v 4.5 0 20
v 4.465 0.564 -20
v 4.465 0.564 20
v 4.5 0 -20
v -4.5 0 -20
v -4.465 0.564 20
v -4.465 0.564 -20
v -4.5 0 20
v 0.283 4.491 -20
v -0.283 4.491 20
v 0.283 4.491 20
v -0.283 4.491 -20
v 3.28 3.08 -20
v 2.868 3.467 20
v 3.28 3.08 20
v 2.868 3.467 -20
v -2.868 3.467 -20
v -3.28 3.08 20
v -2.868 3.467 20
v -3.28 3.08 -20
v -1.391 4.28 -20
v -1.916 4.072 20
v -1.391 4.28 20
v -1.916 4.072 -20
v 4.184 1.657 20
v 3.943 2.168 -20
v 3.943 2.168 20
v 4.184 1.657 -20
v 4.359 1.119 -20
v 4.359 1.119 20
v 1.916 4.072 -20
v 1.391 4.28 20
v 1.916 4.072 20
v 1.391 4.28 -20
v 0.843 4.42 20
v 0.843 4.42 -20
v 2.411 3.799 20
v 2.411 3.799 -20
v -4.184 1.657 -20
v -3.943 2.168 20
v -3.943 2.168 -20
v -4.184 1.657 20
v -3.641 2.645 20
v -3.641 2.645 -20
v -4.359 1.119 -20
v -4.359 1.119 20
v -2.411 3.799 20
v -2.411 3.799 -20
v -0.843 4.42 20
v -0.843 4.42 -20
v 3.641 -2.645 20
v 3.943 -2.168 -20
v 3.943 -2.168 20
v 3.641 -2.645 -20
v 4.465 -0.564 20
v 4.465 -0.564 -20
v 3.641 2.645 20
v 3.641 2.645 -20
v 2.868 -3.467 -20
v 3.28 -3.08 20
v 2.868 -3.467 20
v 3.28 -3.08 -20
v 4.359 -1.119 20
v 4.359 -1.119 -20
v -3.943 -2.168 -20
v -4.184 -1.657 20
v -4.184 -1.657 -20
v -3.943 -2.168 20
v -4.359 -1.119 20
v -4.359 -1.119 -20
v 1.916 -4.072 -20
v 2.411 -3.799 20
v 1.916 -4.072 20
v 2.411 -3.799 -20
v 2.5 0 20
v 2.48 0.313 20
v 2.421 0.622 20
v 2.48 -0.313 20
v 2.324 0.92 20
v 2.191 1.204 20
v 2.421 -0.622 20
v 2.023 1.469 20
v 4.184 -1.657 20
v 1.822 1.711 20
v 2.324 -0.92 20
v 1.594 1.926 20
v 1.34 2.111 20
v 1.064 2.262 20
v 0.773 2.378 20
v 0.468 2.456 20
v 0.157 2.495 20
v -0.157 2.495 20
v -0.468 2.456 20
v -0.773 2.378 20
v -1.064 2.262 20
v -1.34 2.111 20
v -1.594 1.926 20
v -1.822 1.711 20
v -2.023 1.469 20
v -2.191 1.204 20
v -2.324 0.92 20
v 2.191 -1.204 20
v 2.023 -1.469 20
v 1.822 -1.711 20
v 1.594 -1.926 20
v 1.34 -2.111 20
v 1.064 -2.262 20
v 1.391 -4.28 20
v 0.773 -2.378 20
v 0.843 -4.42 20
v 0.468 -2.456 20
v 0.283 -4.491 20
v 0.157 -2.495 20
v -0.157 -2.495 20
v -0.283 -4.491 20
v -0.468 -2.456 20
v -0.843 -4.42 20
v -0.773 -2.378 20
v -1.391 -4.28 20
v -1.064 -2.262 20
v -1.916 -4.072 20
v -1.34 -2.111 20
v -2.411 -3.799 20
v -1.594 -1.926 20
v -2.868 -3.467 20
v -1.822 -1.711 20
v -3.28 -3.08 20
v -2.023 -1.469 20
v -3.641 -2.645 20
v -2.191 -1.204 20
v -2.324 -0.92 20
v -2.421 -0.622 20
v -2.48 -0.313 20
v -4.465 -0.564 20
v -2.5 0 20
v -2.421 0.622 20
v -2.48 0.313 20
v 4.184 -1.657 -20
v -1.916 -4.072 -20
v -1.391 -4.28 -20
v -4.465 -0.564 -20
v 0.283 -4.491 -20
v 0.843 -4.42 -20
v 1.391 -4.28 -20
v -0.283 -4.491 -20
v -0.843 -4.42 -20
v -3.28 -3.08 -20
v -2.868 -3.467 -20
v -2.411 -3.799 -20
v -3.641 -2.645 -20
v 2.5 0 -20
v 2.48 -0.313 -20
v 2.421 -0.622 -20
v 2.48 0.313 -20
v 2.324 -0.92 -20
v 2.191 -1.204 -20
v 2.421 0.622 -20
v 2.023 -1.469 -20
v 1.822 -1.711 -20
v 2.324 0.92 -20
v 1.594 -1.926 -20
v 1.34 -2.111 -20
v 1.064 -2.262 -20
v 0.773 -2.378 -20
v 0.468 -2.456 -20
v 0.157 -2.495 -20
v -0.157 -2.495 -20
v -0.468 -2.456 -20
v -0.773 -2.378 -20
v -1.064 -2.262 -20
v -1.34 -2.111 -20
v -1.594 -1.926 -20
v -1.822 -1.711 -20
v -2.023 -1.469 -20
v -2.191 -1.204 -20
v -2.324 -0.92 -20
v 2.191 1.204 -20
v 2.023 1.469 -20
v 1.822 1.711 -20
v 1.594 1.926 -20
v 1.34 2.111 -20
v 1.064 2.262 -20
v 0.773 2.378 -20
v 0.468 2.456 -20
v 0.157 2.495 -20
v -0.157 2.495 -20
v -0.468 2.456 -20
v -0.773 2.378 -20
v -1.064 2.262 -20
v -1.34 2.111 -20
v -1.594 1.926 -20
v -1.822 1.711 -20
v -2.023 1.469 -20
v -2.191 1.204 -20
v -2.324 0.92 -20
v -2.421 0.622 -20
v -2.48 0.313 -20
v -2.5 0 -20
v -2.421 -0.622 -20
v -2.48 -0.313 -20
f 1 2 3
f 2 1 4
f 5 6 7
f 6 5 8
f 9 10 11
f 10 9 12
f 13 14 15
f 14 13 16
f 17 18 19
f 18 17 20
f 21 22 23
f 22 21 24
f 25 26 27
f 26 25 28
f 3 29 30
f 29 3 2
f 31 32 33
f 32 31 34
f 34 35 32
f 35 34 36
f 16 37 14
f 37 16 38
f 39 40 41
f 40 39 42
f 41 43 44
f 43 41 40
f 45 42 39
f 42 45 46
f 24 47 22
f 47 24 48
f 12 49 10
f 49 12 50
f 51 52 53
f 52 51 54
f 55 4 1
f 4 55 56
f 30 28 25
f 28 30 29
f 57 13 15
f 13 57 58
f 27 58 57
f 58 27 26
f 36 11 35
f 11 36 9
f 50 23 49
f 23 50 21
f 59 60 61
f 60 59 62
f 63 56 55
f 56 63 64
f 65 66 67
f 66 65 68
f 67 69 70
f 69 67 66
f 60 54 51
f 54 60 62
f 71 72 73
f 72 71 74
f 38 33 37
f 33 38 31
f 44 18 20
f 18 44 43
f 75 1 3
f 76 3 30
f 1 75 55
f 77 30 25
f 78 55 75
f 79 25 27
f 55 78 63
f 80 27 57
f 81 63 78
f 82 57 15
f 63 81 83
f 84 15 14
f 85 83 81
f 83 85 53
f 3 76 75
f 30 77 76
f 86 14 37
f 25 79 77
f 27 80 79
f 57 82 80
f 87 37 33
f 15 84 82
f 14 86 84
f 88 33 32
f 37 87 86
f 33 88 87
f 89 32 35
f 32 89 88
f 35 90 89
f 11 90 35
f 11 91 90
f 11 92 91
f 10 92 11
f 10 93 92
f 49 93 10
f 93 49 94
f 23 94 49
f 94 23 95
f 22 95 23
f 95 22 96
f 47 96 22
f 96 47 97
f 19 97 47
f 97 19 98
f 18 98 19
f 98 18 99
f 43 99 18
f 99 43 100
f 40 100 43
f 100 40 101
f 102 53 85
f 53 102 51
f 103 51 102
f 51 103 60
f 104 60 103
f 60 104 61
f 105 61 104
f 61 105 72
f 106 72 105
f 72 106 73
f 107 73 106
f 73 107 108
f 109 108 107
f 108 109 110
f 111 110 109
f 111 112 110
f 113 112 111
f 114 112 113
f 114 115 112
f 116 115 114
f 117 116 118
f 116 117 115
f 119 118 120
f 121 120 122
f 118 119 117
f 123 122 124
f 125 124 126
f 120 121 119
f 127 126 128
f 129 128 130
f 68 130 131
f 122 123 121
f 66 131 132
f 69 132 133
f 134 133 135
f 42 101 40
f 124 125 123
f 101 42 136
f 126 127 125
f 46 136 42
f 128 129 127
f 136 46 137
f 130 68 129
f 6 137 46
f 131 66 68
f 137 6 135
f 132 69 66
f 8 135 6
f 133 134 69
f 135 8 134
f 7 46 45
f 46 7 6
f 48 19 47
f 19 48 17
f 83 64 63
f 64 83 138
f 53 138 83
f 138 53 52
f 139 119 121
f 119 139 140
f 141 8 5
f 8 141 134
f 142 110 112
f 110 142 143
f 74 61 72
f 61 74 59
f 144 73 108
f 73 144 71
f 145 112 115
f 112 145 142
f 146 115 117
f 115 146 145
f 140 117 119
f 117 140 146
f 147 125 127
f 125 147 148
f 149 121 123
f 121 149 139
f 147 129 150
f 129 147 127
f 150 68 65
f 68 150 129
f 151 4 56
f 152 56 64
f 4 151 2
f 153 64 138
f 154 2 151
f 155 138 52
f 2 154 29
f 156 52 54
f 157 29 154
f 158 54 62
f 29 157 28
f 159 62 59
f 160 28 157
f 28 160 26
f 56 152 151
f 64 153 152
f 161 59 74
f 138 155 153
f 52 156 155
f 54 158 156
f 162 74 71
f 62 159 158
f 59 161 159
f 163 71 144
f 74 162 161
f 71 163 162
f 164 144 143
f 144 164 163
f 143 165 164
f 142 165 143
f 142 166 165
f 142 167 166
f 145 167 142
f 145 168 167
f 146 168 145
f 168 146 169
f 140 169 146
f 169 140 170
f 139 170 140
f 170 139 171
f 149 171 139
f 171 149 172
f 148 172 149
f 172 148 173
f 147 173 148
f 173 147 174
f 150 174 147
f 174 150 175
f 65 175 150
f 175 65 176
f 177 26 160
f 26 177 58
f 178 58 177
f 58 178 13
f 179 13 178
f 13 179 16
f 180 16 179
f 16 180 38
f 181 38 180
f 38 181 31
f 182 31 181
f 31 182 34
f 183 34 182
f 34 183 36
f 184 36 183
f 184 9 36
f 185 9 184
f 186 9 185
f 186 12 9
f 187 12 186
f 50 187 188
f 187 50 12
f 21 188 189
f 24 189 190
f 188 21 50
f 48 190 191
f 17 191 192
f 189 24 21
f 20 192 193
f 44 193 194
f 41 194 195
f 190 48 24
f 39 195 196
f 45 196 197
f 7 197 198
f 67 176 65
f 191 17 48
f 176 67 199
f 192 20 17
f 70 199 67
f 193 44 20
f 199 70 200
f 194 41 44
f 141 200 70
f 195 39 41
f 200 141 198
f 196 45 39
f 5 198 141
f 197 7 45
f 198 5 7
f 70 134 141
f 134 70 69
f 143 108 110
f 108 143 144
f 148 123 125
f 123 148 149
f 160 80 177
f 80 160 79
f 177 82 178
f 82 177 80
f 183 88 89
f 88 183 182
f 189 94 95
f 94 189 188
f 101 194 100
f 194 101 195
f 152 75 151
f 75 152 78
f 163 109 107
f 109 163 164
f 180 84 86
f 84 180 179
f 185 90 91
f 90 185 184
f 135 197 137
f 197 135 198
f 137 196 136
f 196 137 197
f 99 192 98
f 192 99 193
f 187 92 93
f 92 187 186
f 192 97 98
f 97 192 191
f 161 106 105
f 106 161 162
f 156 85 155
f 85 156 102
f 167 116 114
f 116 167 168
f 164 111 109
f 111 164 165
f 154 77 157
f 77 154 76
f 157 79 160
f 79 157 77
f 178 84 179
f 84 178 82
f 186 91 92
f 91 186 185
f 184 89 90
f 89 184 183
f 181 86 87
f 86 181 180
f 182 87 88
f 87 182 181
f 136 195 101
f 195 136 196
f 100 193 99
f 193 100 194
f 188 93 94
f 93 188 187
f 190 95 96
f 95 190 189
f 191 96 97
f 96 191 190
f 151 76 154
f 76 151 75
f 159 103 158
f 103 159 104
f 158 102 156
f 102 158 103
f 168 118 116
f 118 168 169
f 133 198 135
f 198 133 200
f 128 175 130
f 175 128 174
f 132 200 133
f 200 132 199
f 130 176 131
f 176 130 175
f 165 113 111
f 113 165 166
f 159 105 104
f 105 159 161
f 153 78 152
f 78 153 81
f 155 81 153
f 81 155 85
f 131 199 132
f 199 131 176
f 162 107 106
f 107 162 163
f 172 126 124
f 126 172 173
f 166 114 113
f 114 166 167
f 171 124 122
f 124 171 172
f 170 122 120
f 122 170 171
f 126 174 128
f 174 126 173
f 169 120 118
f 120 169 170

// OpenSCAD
$fn = 50;


difference() {
	union() {
		translate(v = [0, 0, -20.0000000000]) {
			cylinder(h = 40, r = 4.5000000000);
		}
	}
	union() {
		translate(v = [0, 0, -100.0000000000]) {
			cylinder(h = 200, r = 2.5000000000);
		}
	}
}
